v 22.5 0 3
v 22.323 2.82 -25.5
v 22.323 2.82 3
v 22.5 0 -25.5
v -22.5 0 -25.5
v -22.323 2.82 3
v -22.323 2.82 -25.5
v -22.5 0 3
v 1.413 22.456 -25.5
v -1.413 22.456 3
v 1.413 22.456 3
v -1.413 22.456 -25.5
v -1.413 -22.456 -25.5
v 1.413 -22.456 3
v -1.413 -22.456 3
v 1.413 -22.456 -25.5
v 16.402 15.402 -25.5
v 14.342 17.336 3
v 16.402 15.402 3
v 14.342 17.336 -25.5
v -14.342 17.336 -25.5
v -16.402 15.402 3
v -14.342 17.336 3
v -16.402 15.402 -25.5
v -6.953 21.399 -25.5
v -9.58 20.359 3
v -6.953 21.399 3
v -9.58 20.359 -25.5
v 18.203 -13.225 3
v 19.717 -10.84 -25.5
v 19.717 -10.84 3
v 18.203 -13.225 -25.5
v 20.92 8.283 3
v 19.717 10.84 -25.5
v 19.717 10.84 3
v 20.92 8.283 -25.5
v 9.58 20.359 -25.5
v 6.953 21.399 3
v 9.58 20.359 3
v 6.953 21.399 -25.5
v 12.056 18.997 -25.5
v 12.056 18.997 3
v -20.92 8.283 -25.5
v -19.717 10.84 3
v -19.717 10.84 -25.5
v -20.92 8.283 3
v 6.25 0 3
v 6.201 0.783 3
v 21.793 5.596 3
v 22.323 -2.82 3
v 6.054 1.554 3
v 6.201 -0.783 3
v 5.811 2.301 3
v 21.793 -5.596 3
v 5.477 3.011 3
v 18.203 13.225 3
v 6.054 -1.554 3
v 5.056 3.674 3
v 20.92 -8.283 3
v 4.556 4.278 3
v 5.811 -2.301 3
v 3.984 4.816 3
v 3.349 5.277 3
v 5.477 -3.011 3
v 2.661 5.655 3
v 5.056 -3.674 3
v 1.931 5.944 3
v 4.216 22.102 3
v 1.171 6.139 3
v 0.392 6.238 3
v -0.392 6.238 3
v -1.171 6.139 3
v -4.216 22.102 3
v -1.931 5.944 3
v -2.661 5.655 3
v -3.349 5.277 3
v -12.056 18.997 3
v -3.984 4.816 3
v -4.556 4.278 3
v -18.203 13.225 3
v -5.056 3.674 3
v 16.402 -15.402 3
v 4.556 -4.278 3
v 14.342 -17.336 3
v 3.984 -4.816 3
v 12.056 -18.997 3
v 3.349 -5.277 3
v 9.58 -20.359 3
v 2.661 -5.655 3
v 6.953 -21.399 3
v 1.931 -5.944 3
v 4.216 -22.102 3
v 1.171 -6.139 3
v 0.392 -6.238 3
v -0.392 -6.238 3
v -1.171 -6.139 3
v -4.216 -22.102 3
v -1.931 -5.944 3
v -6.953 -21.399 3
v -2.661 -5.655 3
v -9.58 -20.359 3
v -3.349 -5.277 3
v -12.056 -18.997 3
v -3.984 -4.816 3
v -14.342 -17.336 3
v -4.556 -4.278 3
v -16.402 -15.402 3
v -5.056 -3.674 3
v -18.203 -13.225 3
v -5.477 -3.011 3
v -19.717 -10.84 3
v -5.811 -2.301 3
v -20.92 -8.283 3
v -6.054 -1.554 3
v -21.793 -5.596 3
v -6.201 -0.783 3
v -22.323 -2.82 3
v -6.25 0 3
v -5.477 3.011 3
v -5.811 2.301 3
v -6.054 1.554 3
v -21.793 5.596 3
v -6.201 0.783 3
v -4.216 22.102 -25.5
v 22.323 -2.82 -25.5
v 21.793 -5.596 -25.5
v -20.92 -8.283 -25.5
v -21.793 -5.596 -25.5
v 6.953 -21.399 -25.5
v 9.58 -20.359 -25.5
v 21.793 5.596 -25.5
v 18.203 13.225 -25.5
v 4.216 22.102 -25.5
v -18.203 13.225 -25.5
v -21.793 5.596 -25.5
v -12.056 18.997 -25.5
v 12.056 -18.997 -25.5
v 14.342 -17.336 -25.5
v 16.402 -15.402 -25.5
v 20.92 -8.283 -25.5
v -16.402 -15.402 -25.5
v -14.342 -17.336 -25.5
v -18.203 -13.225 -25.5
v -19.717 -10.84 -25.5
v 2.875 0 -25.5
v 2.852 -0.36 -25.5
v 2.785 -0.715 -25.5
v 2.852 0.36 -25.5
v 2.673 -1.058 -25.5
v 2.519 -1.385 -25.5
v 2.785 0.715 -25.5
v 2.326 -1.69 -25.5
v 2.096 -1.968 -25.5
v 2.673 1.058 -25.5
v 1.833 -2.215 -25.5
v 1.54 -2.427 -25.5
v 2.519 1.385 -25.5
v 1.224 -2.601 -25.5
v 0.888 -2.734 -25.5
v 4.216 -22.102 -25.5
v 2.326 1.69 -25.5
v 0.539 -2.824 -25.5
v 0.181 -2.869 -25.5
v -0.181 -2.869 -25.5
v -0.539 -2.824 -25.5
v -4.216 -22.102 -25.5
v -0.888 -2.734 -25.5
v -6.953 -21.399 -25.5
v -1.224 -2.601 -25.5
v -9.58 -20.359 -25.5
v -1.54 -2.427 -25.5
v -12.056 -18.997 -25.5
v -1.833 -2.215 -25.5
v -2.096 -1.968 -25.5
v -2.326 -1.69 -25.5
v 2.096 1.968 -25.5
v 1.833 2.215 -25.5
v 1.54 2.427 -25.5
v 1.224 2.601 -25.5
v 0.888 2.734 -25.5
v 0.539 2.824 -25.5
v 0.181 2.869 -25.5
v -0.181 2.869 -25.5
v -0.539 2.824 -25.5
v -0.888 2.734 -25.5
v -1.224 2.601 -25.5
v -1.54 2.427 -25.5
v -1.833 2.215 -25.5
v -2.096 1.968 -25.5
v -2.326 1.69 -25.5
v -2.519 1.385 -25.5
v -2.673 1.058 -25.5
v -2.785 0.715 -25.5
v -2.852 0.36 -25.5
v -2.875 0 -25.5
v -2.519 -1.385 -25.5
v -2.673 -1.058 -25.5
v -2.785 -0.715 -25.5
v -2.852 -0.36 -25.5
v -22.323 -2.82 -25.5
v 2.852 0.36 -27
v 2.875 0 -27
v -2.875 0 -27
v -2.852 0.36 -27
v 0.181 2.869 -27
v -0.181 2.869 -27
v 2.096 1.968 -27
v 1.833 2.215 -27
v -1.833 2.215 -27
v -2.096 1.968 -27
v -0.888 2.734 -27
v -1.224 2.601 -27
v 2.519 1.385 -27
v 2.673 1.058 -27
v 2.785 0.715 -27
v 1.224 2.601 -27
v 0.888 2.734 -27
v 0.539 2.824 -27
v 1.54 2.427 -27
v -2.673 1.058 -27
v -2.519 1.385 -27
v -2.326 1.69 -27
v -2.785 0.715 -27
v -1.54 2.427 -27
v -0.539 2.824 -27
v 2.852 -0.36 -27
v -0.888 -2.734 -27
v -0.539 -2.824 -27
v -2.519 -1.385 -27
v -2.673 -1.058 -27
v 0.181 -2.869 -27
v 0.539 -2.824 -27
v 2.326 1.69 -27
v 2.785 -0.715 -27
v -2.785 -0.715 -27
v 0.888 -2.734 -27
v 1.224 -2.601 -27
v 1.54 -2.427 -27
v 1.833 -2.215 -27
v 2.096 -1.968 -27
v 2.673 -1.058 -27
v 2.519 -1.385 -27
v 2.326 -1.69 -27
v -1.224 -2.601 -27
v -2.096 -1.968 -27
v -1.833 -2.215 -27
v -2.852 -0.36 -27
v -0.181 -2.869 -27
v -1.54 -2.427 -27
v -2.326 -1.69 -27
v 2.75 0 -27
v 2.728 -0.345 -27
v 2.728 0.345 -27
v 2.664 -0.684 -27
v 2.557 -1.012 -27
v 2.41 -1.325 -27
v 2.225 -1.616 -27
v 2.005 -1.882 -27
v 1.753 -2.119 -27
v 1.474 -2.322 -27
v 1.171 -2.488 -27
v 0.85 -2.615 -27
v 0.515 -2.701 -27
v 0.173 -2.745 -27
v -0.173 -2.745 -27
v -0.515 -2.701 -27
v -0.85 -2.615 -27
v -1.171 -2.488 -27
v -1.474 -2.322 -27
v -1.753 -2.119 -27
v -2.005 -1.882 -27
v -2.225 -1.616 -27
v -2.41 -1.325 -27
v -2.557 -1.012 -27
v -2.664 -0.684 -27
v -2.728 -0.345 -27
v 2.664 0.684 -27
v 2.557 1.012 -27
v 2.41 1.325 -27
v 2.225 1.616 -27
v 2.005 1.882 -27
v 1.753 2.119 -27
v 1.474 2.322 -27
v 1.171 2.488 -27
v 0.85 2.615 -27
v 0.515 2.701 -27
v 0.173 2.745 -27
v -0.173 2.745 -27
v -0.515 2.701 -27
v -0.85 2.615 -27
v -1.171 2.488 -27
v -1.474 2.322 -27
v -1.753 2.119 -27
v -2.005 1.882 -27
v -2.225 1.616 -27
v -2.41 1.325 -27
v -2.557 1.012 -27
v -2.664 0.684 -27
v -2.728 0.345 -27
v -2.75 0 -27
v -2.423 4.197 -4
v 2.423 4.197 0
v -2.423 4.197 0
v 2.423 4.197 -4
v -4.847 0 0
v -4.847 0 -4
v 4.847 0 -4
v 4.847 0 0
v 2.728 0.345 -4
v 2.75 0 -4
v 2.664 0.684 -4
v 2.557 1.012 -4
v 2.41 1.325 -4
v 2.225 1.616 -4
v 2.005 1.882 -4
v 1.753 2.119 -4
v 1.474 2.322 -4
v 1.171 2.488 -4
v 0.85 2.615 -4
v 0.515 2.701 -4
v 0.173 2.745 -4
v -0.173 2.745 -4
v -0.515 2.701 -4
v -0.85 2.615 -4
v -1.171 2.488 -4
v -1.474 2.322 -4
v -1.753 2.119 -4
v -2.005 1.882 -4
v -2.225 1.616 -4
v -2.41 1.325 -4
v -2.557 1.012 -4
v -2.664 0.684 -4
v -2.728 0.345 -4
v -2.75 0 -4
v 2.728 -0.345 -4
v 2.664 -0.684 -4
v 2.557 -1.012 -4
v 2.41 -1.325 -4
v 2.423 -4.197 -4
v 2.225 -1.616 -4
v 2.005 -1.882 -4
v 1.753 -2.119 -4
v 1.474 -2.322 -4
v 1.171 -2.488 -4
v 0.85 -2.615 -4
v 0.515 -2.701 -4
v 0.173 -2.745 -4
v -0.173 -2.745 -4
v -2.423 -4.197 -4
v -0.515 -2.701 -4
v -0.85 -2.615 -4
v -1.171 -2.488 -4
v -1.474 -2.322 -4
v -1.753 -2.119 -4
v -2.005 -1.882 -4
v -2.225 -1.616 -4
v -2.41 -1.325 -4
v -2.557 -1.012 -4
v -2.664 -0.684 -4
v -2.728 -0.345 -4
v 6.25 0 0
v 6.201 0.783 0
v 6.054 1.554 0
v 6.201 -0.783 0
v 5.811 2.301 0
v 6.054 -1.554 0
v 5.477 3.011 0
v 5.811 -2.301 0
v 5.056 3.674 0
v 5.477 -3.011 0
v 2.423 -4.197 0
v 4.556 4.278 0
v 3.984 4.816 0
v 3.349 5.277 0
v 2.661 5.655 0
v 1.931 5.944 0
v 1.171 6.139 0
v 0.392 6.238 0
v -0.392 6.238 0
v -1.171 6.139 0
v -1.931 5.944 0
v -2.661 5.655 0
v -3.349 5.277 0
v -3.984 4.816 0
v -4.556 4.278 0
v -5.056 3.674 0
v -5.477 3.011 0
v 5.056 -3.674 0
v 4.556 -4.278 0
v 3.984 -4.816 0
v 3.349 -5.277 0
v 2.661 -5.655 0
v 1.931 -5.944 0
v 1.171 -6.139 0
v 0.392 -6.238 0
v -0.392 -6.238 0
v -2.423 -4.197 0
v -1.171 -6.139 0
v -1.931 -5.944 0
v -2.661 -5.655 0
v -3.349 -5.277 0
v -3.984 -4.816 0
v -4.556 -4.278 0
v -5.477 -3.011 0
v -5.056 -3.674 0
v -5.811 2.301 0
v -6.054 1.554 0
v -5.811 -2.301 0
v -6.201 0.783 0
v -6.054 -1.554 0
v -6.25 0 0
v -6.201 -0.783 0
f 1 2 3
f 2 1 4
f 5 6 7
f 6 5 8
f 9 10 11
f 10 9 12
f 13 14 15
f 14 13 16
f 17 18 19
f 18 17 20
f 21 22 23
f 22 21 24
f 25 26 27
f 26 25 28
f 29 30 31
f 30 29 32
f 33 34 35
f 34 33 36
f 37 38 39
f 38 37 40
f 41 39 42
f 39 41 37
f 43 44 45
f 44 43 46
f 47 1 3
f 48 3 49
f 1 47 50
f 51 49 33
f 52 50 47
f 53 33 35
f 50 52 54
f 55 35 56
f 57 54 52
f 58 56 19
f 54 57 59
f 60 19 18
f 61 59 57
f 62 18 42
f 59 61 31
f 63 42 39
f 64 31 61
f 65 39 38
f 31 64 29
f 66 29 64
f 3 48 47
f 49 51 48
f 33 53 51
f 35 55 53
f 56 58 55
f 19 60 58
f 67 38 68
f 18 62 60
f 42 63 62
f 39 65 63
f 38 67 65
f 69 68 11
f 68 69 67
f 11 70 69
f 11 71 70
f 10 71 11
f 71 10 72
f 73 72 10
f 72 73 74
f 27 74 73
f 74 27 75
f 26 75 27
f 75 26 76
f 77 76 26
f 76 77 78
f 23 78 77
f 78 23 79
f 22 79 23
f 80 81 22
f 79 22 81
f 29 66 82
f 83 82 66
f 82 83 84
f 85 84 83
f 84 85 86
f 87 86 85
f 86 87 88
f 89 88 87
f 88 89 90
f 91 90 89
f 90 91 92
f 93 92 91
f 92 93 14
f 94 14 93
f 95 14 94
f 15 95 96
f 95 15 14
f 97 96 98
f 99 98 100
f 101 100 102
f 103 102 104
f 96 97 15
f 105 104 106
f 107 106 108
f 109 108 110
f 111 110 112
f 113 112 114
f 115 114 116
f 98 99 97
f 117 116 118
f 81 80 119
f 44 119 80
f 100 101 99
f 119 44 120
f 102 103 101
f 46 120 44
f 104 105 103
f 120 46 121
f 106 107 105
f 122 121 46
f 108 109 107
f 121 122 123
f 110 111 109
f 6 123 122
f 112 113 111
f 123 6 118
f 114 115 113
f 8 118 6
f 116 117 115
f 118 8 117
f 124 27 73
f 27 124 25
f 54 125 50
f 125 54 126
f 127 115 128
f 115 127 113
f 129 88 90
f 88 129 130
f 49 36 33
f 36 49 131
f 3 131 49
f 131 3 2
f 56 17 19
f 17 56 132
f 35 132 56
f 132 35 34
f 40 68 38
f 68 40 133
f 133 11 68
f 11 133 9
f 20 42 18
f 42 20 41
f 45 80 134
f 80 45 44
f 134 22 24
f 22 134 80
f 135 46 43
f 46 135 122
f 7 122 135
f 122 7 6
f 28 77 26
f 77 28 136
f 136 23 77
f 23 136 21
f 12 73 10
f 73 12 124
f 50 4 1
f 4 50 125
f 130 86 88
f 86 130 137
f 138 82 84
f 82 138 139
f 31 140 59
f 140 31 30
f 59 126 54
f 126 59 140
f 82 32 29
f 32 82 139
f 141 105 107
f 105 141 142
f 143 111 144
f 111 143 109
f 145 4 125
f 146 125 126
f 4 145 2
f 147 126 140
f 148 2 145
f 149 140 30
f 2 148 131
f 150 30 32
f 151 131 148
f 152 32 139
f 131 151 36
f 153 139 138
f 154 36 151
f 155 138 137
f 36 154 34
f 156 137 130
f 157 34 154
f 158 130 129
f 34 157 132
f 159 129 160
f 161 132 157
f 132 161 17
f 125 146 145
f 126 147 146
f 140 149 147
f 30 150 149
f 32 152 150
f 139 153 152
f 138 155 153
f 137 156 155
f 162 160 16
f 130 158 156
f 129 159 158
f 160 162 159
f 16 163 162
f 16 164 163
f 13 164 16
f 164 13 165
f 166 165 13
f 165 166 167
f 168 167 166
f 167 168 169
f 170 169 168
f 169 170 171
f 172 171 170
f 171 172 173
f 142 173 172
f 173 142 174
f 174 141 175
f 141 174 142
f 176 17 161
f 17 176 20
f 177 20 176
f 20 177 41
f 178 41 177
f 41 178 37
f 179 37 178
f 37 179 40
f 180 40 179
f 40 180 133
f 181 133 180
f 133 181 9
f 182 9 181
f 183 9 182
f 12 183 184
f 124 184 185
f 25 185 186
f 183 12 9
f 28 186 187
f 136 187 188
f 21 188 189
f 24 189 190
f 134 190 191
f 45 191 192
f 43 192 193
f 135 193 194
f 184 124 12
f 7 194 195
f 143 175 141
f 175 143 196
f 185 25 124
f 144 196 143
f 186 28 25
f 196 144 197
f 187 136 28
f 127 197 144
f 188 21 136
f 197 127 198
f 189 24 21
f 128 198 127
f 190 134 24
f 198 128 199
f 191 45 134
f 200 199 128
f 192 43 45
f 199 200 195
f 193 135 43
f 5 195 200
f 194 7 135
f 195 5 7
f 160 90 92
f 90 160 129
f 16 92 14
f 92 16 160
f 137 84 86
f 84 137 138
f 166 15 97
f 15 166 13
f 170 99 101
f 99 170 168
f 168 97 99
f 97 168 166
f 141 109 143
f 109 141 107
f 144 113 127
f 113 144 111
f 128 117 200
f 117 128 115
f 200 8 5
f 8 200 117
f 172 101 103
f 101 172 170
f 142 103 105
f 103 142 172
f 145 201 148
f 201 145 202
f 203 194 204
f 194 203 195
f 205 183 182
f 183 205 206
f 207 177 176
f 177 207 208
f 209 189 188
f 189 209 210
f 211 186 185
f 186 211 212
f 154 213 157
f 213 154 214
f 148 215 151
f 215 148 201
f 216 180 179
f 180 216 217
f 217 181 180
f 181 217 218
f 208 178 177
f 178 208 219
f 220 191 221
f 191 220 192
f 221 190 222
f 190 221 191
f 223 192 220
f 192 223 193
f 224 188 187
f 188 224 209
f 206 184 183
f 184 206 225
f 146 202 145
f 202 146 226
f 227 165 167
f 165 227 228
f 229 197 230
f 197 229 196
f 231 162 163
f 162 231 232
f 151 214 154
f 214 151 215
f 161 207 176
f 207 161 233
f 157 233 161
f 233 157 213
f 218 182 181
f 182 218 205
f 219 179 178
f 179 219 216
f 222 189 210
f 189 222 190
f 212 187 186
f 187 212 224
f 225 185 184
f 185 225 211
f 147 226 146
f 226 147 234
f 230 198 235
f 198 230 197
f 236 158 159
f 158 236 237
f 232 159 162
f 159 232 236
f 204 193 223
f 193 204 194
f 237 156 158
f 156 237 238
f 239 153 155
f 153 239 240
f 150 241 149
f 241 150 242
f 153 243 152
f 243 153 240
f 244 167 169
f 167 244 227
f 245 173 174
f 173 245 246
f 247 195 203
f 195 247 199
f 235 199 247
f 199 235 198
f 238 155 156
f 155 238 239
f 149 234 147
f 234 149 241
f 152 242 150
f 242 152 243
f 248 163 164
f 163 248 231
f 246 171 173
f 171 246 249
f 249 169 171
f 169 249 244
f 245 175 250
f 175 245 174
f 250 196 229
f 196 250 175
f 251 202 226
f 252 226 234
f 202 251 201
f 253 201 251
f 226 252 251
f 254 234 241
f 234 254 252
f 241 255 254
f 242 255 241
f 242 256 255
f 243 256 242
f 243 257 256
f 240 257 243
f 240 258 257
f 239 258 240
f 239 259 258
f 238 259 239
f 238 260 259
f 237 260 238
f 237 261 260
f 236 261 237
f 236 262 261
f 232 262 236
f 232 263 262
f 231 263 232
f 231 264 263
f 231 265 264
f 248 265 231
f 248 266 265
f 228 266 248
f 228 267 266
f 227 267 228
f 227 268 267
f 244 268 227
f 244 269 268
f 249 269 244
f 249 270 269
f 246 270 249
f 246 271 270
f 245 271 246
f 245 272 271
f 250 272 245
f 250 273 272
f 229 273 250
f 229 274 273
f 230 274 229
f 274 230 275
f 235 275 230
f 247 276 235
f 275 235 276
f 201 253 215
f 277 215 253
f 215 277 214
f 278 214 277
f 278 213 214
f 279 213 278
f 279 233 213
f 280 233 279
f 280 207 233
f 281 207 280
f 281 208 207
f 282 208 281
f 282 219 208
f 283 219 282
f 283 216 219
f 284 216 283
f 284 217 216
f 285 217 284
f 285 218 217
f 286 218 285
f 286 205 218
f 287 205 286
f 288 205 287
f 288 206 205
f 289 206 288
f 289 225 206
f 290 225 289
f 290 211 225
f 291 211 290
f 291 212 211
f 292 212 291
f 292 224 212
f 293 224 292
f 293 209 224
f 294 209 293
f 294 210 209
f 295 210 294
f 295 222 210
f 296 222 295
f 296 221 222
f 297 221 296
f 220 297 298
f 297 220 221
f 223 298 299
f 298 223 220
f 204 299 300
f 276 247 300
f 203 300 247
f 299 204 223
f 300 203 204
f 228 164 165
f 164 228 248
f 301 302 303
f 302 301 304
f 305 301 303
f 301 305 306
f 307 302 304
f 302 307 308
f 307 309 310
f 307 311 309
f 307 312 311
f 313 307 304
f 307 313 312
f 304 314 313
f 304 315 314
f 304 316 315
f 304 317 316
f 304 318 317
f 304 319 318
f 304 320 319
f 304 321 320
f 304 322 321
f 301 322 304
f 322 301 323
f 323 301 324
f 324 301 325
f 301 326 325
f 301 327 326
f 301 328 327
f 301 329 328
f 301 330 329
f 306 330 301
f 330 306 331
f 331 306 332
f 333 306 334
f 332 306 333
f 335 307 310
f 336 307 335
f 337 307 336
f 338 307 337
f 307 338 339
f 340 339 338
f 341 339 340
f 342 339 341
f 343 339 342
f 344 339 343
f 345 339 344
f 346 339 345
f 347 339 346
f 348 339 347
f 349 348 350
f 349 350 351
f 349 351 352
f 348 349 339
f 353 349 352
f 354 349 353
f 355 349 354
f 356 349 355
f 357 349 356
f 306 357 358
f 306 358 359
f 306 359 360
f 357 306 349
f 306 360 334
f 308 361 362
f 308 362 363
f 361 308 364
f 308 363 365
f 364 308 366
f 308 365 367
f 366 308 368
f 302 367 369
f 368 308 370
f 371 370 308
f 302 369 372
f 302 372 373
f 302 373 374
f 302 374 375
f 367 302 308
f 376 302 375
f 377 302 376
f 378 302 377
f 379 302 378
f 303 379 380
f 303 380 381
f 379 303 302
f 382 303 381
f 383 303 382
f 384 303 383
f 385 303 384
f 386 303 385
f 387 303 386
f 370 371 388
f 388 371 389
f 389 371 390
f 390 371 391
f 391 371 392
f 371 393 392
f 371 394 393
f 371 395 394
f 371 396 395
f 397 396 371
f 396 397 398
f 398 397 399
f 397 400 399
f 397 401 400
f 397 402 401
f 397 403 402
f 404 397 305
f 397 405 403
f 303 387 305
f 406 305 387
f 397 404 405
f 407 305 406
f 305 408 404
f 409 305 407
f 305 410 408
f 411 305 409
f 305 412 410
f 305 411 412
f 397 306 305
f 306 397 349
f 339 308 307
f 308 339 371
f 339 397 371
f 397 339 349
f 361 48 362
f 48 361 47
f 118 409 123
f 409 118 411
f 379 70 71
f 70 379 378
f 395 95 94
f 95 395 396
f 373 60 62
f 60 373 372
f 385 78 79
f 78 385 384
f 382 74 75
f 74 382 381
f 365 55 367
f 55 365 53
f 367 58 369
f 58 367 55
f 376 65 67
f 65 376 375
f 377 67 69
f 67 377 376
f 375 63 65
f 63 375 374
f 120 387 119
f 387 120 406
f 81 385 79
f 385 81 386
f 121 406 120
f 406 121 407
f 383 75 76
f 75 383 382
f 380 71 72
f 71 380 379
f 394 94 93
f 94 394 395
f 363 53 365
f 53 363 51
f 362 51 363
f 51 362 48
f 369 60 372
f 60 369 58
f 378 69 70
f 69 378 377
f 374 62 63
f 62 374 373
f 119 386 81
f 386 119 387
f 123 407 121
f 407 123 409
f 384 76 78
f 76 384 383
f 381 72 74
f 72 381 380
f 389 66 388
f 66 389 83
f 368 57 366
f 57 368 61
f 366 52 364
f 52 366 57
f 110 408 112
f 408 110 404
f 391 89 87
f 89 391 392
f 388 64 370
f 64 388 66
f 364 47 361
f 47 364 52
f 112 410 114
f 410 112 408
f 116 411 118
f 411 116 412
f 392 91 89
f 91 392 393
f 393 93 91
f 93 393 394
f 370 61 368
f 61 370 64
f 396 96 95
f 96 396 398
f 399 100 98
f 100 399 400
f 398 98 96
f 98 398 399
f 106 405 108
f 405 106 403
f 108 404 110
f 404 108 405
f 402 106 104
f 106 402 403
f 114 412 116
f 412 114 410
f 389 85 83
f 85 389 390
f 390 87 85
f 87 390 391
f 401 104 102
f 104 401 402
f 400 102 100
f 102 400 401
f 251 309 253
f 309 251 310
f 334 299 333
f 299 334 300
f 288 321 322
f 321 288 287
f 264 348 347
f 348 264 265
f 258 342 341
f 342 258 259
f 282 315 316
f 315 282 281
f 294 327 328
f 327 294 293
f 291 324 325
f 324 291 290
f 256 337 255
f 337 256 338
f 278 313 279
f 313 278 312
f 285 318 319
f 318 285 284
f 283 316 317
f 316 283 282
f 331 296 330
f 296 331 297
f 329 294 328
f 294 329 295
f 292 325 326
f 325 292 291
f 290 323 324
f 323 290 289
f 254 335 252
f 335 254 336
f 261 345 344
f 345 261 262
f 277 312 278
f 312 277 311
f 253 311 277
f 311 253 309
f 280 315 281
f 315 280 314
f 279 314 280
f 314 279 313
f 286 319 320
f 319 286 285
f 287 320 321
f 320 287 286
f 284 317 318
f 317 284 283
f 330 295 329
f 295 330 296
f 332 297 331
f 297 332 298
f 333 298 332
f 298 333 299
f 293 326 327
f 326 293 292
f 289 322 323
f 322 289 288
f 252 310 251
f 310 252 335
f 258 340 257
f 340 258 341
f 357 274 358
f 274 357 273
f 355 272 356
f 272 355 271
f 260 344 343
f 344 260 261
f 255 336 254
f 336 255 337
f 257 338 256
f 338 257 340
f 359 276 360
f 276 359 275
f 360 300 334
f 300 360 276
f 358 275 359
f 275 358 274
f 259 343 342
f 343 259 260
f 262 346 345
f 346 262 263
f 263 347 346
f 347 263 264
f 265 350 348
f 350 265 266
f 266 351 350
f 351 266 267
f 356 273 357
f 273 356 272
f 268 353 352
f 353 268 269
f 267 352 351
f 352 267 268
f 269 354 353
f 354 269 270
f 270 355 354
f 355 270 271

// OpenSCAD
$fn = 50;

difference() {
	union() {
		translate(v = [0, 0, -25.5]) {
			cylinder(h = 28.5, r = 22.5);
		}
		#translate(v = [0, 0, -27.0]) {
			cylinder(h = 27, r = 2.875);
		}
	}
	union() {
		translate(v = [0, 0, 0]) {
			rotate(a = [0, 0, 0]) {
				difference() {
					union() {
						translate(v = [0, 0, -4]) {
							linear_extrude(height = 4) {
								polygon(points = [[4.8468, 0.0], [2.4234000000000004, 4.197451927062417], [-2.423399999999999, 4.197451927062417], [-4.8468, 5.935618106107392e-16], [-2.423400000000002, -4.197451927062416], [2.423399999999997, -4.197451927062419]]);
							}
						}
					}
					union();
				}
			}
		}
		#cylinder(h = 3, r = 6.25);
		#translate(v = [0, 0, -100.0]) {
			cylinder(h = 200, r = 2.75);
		}
	}
}
